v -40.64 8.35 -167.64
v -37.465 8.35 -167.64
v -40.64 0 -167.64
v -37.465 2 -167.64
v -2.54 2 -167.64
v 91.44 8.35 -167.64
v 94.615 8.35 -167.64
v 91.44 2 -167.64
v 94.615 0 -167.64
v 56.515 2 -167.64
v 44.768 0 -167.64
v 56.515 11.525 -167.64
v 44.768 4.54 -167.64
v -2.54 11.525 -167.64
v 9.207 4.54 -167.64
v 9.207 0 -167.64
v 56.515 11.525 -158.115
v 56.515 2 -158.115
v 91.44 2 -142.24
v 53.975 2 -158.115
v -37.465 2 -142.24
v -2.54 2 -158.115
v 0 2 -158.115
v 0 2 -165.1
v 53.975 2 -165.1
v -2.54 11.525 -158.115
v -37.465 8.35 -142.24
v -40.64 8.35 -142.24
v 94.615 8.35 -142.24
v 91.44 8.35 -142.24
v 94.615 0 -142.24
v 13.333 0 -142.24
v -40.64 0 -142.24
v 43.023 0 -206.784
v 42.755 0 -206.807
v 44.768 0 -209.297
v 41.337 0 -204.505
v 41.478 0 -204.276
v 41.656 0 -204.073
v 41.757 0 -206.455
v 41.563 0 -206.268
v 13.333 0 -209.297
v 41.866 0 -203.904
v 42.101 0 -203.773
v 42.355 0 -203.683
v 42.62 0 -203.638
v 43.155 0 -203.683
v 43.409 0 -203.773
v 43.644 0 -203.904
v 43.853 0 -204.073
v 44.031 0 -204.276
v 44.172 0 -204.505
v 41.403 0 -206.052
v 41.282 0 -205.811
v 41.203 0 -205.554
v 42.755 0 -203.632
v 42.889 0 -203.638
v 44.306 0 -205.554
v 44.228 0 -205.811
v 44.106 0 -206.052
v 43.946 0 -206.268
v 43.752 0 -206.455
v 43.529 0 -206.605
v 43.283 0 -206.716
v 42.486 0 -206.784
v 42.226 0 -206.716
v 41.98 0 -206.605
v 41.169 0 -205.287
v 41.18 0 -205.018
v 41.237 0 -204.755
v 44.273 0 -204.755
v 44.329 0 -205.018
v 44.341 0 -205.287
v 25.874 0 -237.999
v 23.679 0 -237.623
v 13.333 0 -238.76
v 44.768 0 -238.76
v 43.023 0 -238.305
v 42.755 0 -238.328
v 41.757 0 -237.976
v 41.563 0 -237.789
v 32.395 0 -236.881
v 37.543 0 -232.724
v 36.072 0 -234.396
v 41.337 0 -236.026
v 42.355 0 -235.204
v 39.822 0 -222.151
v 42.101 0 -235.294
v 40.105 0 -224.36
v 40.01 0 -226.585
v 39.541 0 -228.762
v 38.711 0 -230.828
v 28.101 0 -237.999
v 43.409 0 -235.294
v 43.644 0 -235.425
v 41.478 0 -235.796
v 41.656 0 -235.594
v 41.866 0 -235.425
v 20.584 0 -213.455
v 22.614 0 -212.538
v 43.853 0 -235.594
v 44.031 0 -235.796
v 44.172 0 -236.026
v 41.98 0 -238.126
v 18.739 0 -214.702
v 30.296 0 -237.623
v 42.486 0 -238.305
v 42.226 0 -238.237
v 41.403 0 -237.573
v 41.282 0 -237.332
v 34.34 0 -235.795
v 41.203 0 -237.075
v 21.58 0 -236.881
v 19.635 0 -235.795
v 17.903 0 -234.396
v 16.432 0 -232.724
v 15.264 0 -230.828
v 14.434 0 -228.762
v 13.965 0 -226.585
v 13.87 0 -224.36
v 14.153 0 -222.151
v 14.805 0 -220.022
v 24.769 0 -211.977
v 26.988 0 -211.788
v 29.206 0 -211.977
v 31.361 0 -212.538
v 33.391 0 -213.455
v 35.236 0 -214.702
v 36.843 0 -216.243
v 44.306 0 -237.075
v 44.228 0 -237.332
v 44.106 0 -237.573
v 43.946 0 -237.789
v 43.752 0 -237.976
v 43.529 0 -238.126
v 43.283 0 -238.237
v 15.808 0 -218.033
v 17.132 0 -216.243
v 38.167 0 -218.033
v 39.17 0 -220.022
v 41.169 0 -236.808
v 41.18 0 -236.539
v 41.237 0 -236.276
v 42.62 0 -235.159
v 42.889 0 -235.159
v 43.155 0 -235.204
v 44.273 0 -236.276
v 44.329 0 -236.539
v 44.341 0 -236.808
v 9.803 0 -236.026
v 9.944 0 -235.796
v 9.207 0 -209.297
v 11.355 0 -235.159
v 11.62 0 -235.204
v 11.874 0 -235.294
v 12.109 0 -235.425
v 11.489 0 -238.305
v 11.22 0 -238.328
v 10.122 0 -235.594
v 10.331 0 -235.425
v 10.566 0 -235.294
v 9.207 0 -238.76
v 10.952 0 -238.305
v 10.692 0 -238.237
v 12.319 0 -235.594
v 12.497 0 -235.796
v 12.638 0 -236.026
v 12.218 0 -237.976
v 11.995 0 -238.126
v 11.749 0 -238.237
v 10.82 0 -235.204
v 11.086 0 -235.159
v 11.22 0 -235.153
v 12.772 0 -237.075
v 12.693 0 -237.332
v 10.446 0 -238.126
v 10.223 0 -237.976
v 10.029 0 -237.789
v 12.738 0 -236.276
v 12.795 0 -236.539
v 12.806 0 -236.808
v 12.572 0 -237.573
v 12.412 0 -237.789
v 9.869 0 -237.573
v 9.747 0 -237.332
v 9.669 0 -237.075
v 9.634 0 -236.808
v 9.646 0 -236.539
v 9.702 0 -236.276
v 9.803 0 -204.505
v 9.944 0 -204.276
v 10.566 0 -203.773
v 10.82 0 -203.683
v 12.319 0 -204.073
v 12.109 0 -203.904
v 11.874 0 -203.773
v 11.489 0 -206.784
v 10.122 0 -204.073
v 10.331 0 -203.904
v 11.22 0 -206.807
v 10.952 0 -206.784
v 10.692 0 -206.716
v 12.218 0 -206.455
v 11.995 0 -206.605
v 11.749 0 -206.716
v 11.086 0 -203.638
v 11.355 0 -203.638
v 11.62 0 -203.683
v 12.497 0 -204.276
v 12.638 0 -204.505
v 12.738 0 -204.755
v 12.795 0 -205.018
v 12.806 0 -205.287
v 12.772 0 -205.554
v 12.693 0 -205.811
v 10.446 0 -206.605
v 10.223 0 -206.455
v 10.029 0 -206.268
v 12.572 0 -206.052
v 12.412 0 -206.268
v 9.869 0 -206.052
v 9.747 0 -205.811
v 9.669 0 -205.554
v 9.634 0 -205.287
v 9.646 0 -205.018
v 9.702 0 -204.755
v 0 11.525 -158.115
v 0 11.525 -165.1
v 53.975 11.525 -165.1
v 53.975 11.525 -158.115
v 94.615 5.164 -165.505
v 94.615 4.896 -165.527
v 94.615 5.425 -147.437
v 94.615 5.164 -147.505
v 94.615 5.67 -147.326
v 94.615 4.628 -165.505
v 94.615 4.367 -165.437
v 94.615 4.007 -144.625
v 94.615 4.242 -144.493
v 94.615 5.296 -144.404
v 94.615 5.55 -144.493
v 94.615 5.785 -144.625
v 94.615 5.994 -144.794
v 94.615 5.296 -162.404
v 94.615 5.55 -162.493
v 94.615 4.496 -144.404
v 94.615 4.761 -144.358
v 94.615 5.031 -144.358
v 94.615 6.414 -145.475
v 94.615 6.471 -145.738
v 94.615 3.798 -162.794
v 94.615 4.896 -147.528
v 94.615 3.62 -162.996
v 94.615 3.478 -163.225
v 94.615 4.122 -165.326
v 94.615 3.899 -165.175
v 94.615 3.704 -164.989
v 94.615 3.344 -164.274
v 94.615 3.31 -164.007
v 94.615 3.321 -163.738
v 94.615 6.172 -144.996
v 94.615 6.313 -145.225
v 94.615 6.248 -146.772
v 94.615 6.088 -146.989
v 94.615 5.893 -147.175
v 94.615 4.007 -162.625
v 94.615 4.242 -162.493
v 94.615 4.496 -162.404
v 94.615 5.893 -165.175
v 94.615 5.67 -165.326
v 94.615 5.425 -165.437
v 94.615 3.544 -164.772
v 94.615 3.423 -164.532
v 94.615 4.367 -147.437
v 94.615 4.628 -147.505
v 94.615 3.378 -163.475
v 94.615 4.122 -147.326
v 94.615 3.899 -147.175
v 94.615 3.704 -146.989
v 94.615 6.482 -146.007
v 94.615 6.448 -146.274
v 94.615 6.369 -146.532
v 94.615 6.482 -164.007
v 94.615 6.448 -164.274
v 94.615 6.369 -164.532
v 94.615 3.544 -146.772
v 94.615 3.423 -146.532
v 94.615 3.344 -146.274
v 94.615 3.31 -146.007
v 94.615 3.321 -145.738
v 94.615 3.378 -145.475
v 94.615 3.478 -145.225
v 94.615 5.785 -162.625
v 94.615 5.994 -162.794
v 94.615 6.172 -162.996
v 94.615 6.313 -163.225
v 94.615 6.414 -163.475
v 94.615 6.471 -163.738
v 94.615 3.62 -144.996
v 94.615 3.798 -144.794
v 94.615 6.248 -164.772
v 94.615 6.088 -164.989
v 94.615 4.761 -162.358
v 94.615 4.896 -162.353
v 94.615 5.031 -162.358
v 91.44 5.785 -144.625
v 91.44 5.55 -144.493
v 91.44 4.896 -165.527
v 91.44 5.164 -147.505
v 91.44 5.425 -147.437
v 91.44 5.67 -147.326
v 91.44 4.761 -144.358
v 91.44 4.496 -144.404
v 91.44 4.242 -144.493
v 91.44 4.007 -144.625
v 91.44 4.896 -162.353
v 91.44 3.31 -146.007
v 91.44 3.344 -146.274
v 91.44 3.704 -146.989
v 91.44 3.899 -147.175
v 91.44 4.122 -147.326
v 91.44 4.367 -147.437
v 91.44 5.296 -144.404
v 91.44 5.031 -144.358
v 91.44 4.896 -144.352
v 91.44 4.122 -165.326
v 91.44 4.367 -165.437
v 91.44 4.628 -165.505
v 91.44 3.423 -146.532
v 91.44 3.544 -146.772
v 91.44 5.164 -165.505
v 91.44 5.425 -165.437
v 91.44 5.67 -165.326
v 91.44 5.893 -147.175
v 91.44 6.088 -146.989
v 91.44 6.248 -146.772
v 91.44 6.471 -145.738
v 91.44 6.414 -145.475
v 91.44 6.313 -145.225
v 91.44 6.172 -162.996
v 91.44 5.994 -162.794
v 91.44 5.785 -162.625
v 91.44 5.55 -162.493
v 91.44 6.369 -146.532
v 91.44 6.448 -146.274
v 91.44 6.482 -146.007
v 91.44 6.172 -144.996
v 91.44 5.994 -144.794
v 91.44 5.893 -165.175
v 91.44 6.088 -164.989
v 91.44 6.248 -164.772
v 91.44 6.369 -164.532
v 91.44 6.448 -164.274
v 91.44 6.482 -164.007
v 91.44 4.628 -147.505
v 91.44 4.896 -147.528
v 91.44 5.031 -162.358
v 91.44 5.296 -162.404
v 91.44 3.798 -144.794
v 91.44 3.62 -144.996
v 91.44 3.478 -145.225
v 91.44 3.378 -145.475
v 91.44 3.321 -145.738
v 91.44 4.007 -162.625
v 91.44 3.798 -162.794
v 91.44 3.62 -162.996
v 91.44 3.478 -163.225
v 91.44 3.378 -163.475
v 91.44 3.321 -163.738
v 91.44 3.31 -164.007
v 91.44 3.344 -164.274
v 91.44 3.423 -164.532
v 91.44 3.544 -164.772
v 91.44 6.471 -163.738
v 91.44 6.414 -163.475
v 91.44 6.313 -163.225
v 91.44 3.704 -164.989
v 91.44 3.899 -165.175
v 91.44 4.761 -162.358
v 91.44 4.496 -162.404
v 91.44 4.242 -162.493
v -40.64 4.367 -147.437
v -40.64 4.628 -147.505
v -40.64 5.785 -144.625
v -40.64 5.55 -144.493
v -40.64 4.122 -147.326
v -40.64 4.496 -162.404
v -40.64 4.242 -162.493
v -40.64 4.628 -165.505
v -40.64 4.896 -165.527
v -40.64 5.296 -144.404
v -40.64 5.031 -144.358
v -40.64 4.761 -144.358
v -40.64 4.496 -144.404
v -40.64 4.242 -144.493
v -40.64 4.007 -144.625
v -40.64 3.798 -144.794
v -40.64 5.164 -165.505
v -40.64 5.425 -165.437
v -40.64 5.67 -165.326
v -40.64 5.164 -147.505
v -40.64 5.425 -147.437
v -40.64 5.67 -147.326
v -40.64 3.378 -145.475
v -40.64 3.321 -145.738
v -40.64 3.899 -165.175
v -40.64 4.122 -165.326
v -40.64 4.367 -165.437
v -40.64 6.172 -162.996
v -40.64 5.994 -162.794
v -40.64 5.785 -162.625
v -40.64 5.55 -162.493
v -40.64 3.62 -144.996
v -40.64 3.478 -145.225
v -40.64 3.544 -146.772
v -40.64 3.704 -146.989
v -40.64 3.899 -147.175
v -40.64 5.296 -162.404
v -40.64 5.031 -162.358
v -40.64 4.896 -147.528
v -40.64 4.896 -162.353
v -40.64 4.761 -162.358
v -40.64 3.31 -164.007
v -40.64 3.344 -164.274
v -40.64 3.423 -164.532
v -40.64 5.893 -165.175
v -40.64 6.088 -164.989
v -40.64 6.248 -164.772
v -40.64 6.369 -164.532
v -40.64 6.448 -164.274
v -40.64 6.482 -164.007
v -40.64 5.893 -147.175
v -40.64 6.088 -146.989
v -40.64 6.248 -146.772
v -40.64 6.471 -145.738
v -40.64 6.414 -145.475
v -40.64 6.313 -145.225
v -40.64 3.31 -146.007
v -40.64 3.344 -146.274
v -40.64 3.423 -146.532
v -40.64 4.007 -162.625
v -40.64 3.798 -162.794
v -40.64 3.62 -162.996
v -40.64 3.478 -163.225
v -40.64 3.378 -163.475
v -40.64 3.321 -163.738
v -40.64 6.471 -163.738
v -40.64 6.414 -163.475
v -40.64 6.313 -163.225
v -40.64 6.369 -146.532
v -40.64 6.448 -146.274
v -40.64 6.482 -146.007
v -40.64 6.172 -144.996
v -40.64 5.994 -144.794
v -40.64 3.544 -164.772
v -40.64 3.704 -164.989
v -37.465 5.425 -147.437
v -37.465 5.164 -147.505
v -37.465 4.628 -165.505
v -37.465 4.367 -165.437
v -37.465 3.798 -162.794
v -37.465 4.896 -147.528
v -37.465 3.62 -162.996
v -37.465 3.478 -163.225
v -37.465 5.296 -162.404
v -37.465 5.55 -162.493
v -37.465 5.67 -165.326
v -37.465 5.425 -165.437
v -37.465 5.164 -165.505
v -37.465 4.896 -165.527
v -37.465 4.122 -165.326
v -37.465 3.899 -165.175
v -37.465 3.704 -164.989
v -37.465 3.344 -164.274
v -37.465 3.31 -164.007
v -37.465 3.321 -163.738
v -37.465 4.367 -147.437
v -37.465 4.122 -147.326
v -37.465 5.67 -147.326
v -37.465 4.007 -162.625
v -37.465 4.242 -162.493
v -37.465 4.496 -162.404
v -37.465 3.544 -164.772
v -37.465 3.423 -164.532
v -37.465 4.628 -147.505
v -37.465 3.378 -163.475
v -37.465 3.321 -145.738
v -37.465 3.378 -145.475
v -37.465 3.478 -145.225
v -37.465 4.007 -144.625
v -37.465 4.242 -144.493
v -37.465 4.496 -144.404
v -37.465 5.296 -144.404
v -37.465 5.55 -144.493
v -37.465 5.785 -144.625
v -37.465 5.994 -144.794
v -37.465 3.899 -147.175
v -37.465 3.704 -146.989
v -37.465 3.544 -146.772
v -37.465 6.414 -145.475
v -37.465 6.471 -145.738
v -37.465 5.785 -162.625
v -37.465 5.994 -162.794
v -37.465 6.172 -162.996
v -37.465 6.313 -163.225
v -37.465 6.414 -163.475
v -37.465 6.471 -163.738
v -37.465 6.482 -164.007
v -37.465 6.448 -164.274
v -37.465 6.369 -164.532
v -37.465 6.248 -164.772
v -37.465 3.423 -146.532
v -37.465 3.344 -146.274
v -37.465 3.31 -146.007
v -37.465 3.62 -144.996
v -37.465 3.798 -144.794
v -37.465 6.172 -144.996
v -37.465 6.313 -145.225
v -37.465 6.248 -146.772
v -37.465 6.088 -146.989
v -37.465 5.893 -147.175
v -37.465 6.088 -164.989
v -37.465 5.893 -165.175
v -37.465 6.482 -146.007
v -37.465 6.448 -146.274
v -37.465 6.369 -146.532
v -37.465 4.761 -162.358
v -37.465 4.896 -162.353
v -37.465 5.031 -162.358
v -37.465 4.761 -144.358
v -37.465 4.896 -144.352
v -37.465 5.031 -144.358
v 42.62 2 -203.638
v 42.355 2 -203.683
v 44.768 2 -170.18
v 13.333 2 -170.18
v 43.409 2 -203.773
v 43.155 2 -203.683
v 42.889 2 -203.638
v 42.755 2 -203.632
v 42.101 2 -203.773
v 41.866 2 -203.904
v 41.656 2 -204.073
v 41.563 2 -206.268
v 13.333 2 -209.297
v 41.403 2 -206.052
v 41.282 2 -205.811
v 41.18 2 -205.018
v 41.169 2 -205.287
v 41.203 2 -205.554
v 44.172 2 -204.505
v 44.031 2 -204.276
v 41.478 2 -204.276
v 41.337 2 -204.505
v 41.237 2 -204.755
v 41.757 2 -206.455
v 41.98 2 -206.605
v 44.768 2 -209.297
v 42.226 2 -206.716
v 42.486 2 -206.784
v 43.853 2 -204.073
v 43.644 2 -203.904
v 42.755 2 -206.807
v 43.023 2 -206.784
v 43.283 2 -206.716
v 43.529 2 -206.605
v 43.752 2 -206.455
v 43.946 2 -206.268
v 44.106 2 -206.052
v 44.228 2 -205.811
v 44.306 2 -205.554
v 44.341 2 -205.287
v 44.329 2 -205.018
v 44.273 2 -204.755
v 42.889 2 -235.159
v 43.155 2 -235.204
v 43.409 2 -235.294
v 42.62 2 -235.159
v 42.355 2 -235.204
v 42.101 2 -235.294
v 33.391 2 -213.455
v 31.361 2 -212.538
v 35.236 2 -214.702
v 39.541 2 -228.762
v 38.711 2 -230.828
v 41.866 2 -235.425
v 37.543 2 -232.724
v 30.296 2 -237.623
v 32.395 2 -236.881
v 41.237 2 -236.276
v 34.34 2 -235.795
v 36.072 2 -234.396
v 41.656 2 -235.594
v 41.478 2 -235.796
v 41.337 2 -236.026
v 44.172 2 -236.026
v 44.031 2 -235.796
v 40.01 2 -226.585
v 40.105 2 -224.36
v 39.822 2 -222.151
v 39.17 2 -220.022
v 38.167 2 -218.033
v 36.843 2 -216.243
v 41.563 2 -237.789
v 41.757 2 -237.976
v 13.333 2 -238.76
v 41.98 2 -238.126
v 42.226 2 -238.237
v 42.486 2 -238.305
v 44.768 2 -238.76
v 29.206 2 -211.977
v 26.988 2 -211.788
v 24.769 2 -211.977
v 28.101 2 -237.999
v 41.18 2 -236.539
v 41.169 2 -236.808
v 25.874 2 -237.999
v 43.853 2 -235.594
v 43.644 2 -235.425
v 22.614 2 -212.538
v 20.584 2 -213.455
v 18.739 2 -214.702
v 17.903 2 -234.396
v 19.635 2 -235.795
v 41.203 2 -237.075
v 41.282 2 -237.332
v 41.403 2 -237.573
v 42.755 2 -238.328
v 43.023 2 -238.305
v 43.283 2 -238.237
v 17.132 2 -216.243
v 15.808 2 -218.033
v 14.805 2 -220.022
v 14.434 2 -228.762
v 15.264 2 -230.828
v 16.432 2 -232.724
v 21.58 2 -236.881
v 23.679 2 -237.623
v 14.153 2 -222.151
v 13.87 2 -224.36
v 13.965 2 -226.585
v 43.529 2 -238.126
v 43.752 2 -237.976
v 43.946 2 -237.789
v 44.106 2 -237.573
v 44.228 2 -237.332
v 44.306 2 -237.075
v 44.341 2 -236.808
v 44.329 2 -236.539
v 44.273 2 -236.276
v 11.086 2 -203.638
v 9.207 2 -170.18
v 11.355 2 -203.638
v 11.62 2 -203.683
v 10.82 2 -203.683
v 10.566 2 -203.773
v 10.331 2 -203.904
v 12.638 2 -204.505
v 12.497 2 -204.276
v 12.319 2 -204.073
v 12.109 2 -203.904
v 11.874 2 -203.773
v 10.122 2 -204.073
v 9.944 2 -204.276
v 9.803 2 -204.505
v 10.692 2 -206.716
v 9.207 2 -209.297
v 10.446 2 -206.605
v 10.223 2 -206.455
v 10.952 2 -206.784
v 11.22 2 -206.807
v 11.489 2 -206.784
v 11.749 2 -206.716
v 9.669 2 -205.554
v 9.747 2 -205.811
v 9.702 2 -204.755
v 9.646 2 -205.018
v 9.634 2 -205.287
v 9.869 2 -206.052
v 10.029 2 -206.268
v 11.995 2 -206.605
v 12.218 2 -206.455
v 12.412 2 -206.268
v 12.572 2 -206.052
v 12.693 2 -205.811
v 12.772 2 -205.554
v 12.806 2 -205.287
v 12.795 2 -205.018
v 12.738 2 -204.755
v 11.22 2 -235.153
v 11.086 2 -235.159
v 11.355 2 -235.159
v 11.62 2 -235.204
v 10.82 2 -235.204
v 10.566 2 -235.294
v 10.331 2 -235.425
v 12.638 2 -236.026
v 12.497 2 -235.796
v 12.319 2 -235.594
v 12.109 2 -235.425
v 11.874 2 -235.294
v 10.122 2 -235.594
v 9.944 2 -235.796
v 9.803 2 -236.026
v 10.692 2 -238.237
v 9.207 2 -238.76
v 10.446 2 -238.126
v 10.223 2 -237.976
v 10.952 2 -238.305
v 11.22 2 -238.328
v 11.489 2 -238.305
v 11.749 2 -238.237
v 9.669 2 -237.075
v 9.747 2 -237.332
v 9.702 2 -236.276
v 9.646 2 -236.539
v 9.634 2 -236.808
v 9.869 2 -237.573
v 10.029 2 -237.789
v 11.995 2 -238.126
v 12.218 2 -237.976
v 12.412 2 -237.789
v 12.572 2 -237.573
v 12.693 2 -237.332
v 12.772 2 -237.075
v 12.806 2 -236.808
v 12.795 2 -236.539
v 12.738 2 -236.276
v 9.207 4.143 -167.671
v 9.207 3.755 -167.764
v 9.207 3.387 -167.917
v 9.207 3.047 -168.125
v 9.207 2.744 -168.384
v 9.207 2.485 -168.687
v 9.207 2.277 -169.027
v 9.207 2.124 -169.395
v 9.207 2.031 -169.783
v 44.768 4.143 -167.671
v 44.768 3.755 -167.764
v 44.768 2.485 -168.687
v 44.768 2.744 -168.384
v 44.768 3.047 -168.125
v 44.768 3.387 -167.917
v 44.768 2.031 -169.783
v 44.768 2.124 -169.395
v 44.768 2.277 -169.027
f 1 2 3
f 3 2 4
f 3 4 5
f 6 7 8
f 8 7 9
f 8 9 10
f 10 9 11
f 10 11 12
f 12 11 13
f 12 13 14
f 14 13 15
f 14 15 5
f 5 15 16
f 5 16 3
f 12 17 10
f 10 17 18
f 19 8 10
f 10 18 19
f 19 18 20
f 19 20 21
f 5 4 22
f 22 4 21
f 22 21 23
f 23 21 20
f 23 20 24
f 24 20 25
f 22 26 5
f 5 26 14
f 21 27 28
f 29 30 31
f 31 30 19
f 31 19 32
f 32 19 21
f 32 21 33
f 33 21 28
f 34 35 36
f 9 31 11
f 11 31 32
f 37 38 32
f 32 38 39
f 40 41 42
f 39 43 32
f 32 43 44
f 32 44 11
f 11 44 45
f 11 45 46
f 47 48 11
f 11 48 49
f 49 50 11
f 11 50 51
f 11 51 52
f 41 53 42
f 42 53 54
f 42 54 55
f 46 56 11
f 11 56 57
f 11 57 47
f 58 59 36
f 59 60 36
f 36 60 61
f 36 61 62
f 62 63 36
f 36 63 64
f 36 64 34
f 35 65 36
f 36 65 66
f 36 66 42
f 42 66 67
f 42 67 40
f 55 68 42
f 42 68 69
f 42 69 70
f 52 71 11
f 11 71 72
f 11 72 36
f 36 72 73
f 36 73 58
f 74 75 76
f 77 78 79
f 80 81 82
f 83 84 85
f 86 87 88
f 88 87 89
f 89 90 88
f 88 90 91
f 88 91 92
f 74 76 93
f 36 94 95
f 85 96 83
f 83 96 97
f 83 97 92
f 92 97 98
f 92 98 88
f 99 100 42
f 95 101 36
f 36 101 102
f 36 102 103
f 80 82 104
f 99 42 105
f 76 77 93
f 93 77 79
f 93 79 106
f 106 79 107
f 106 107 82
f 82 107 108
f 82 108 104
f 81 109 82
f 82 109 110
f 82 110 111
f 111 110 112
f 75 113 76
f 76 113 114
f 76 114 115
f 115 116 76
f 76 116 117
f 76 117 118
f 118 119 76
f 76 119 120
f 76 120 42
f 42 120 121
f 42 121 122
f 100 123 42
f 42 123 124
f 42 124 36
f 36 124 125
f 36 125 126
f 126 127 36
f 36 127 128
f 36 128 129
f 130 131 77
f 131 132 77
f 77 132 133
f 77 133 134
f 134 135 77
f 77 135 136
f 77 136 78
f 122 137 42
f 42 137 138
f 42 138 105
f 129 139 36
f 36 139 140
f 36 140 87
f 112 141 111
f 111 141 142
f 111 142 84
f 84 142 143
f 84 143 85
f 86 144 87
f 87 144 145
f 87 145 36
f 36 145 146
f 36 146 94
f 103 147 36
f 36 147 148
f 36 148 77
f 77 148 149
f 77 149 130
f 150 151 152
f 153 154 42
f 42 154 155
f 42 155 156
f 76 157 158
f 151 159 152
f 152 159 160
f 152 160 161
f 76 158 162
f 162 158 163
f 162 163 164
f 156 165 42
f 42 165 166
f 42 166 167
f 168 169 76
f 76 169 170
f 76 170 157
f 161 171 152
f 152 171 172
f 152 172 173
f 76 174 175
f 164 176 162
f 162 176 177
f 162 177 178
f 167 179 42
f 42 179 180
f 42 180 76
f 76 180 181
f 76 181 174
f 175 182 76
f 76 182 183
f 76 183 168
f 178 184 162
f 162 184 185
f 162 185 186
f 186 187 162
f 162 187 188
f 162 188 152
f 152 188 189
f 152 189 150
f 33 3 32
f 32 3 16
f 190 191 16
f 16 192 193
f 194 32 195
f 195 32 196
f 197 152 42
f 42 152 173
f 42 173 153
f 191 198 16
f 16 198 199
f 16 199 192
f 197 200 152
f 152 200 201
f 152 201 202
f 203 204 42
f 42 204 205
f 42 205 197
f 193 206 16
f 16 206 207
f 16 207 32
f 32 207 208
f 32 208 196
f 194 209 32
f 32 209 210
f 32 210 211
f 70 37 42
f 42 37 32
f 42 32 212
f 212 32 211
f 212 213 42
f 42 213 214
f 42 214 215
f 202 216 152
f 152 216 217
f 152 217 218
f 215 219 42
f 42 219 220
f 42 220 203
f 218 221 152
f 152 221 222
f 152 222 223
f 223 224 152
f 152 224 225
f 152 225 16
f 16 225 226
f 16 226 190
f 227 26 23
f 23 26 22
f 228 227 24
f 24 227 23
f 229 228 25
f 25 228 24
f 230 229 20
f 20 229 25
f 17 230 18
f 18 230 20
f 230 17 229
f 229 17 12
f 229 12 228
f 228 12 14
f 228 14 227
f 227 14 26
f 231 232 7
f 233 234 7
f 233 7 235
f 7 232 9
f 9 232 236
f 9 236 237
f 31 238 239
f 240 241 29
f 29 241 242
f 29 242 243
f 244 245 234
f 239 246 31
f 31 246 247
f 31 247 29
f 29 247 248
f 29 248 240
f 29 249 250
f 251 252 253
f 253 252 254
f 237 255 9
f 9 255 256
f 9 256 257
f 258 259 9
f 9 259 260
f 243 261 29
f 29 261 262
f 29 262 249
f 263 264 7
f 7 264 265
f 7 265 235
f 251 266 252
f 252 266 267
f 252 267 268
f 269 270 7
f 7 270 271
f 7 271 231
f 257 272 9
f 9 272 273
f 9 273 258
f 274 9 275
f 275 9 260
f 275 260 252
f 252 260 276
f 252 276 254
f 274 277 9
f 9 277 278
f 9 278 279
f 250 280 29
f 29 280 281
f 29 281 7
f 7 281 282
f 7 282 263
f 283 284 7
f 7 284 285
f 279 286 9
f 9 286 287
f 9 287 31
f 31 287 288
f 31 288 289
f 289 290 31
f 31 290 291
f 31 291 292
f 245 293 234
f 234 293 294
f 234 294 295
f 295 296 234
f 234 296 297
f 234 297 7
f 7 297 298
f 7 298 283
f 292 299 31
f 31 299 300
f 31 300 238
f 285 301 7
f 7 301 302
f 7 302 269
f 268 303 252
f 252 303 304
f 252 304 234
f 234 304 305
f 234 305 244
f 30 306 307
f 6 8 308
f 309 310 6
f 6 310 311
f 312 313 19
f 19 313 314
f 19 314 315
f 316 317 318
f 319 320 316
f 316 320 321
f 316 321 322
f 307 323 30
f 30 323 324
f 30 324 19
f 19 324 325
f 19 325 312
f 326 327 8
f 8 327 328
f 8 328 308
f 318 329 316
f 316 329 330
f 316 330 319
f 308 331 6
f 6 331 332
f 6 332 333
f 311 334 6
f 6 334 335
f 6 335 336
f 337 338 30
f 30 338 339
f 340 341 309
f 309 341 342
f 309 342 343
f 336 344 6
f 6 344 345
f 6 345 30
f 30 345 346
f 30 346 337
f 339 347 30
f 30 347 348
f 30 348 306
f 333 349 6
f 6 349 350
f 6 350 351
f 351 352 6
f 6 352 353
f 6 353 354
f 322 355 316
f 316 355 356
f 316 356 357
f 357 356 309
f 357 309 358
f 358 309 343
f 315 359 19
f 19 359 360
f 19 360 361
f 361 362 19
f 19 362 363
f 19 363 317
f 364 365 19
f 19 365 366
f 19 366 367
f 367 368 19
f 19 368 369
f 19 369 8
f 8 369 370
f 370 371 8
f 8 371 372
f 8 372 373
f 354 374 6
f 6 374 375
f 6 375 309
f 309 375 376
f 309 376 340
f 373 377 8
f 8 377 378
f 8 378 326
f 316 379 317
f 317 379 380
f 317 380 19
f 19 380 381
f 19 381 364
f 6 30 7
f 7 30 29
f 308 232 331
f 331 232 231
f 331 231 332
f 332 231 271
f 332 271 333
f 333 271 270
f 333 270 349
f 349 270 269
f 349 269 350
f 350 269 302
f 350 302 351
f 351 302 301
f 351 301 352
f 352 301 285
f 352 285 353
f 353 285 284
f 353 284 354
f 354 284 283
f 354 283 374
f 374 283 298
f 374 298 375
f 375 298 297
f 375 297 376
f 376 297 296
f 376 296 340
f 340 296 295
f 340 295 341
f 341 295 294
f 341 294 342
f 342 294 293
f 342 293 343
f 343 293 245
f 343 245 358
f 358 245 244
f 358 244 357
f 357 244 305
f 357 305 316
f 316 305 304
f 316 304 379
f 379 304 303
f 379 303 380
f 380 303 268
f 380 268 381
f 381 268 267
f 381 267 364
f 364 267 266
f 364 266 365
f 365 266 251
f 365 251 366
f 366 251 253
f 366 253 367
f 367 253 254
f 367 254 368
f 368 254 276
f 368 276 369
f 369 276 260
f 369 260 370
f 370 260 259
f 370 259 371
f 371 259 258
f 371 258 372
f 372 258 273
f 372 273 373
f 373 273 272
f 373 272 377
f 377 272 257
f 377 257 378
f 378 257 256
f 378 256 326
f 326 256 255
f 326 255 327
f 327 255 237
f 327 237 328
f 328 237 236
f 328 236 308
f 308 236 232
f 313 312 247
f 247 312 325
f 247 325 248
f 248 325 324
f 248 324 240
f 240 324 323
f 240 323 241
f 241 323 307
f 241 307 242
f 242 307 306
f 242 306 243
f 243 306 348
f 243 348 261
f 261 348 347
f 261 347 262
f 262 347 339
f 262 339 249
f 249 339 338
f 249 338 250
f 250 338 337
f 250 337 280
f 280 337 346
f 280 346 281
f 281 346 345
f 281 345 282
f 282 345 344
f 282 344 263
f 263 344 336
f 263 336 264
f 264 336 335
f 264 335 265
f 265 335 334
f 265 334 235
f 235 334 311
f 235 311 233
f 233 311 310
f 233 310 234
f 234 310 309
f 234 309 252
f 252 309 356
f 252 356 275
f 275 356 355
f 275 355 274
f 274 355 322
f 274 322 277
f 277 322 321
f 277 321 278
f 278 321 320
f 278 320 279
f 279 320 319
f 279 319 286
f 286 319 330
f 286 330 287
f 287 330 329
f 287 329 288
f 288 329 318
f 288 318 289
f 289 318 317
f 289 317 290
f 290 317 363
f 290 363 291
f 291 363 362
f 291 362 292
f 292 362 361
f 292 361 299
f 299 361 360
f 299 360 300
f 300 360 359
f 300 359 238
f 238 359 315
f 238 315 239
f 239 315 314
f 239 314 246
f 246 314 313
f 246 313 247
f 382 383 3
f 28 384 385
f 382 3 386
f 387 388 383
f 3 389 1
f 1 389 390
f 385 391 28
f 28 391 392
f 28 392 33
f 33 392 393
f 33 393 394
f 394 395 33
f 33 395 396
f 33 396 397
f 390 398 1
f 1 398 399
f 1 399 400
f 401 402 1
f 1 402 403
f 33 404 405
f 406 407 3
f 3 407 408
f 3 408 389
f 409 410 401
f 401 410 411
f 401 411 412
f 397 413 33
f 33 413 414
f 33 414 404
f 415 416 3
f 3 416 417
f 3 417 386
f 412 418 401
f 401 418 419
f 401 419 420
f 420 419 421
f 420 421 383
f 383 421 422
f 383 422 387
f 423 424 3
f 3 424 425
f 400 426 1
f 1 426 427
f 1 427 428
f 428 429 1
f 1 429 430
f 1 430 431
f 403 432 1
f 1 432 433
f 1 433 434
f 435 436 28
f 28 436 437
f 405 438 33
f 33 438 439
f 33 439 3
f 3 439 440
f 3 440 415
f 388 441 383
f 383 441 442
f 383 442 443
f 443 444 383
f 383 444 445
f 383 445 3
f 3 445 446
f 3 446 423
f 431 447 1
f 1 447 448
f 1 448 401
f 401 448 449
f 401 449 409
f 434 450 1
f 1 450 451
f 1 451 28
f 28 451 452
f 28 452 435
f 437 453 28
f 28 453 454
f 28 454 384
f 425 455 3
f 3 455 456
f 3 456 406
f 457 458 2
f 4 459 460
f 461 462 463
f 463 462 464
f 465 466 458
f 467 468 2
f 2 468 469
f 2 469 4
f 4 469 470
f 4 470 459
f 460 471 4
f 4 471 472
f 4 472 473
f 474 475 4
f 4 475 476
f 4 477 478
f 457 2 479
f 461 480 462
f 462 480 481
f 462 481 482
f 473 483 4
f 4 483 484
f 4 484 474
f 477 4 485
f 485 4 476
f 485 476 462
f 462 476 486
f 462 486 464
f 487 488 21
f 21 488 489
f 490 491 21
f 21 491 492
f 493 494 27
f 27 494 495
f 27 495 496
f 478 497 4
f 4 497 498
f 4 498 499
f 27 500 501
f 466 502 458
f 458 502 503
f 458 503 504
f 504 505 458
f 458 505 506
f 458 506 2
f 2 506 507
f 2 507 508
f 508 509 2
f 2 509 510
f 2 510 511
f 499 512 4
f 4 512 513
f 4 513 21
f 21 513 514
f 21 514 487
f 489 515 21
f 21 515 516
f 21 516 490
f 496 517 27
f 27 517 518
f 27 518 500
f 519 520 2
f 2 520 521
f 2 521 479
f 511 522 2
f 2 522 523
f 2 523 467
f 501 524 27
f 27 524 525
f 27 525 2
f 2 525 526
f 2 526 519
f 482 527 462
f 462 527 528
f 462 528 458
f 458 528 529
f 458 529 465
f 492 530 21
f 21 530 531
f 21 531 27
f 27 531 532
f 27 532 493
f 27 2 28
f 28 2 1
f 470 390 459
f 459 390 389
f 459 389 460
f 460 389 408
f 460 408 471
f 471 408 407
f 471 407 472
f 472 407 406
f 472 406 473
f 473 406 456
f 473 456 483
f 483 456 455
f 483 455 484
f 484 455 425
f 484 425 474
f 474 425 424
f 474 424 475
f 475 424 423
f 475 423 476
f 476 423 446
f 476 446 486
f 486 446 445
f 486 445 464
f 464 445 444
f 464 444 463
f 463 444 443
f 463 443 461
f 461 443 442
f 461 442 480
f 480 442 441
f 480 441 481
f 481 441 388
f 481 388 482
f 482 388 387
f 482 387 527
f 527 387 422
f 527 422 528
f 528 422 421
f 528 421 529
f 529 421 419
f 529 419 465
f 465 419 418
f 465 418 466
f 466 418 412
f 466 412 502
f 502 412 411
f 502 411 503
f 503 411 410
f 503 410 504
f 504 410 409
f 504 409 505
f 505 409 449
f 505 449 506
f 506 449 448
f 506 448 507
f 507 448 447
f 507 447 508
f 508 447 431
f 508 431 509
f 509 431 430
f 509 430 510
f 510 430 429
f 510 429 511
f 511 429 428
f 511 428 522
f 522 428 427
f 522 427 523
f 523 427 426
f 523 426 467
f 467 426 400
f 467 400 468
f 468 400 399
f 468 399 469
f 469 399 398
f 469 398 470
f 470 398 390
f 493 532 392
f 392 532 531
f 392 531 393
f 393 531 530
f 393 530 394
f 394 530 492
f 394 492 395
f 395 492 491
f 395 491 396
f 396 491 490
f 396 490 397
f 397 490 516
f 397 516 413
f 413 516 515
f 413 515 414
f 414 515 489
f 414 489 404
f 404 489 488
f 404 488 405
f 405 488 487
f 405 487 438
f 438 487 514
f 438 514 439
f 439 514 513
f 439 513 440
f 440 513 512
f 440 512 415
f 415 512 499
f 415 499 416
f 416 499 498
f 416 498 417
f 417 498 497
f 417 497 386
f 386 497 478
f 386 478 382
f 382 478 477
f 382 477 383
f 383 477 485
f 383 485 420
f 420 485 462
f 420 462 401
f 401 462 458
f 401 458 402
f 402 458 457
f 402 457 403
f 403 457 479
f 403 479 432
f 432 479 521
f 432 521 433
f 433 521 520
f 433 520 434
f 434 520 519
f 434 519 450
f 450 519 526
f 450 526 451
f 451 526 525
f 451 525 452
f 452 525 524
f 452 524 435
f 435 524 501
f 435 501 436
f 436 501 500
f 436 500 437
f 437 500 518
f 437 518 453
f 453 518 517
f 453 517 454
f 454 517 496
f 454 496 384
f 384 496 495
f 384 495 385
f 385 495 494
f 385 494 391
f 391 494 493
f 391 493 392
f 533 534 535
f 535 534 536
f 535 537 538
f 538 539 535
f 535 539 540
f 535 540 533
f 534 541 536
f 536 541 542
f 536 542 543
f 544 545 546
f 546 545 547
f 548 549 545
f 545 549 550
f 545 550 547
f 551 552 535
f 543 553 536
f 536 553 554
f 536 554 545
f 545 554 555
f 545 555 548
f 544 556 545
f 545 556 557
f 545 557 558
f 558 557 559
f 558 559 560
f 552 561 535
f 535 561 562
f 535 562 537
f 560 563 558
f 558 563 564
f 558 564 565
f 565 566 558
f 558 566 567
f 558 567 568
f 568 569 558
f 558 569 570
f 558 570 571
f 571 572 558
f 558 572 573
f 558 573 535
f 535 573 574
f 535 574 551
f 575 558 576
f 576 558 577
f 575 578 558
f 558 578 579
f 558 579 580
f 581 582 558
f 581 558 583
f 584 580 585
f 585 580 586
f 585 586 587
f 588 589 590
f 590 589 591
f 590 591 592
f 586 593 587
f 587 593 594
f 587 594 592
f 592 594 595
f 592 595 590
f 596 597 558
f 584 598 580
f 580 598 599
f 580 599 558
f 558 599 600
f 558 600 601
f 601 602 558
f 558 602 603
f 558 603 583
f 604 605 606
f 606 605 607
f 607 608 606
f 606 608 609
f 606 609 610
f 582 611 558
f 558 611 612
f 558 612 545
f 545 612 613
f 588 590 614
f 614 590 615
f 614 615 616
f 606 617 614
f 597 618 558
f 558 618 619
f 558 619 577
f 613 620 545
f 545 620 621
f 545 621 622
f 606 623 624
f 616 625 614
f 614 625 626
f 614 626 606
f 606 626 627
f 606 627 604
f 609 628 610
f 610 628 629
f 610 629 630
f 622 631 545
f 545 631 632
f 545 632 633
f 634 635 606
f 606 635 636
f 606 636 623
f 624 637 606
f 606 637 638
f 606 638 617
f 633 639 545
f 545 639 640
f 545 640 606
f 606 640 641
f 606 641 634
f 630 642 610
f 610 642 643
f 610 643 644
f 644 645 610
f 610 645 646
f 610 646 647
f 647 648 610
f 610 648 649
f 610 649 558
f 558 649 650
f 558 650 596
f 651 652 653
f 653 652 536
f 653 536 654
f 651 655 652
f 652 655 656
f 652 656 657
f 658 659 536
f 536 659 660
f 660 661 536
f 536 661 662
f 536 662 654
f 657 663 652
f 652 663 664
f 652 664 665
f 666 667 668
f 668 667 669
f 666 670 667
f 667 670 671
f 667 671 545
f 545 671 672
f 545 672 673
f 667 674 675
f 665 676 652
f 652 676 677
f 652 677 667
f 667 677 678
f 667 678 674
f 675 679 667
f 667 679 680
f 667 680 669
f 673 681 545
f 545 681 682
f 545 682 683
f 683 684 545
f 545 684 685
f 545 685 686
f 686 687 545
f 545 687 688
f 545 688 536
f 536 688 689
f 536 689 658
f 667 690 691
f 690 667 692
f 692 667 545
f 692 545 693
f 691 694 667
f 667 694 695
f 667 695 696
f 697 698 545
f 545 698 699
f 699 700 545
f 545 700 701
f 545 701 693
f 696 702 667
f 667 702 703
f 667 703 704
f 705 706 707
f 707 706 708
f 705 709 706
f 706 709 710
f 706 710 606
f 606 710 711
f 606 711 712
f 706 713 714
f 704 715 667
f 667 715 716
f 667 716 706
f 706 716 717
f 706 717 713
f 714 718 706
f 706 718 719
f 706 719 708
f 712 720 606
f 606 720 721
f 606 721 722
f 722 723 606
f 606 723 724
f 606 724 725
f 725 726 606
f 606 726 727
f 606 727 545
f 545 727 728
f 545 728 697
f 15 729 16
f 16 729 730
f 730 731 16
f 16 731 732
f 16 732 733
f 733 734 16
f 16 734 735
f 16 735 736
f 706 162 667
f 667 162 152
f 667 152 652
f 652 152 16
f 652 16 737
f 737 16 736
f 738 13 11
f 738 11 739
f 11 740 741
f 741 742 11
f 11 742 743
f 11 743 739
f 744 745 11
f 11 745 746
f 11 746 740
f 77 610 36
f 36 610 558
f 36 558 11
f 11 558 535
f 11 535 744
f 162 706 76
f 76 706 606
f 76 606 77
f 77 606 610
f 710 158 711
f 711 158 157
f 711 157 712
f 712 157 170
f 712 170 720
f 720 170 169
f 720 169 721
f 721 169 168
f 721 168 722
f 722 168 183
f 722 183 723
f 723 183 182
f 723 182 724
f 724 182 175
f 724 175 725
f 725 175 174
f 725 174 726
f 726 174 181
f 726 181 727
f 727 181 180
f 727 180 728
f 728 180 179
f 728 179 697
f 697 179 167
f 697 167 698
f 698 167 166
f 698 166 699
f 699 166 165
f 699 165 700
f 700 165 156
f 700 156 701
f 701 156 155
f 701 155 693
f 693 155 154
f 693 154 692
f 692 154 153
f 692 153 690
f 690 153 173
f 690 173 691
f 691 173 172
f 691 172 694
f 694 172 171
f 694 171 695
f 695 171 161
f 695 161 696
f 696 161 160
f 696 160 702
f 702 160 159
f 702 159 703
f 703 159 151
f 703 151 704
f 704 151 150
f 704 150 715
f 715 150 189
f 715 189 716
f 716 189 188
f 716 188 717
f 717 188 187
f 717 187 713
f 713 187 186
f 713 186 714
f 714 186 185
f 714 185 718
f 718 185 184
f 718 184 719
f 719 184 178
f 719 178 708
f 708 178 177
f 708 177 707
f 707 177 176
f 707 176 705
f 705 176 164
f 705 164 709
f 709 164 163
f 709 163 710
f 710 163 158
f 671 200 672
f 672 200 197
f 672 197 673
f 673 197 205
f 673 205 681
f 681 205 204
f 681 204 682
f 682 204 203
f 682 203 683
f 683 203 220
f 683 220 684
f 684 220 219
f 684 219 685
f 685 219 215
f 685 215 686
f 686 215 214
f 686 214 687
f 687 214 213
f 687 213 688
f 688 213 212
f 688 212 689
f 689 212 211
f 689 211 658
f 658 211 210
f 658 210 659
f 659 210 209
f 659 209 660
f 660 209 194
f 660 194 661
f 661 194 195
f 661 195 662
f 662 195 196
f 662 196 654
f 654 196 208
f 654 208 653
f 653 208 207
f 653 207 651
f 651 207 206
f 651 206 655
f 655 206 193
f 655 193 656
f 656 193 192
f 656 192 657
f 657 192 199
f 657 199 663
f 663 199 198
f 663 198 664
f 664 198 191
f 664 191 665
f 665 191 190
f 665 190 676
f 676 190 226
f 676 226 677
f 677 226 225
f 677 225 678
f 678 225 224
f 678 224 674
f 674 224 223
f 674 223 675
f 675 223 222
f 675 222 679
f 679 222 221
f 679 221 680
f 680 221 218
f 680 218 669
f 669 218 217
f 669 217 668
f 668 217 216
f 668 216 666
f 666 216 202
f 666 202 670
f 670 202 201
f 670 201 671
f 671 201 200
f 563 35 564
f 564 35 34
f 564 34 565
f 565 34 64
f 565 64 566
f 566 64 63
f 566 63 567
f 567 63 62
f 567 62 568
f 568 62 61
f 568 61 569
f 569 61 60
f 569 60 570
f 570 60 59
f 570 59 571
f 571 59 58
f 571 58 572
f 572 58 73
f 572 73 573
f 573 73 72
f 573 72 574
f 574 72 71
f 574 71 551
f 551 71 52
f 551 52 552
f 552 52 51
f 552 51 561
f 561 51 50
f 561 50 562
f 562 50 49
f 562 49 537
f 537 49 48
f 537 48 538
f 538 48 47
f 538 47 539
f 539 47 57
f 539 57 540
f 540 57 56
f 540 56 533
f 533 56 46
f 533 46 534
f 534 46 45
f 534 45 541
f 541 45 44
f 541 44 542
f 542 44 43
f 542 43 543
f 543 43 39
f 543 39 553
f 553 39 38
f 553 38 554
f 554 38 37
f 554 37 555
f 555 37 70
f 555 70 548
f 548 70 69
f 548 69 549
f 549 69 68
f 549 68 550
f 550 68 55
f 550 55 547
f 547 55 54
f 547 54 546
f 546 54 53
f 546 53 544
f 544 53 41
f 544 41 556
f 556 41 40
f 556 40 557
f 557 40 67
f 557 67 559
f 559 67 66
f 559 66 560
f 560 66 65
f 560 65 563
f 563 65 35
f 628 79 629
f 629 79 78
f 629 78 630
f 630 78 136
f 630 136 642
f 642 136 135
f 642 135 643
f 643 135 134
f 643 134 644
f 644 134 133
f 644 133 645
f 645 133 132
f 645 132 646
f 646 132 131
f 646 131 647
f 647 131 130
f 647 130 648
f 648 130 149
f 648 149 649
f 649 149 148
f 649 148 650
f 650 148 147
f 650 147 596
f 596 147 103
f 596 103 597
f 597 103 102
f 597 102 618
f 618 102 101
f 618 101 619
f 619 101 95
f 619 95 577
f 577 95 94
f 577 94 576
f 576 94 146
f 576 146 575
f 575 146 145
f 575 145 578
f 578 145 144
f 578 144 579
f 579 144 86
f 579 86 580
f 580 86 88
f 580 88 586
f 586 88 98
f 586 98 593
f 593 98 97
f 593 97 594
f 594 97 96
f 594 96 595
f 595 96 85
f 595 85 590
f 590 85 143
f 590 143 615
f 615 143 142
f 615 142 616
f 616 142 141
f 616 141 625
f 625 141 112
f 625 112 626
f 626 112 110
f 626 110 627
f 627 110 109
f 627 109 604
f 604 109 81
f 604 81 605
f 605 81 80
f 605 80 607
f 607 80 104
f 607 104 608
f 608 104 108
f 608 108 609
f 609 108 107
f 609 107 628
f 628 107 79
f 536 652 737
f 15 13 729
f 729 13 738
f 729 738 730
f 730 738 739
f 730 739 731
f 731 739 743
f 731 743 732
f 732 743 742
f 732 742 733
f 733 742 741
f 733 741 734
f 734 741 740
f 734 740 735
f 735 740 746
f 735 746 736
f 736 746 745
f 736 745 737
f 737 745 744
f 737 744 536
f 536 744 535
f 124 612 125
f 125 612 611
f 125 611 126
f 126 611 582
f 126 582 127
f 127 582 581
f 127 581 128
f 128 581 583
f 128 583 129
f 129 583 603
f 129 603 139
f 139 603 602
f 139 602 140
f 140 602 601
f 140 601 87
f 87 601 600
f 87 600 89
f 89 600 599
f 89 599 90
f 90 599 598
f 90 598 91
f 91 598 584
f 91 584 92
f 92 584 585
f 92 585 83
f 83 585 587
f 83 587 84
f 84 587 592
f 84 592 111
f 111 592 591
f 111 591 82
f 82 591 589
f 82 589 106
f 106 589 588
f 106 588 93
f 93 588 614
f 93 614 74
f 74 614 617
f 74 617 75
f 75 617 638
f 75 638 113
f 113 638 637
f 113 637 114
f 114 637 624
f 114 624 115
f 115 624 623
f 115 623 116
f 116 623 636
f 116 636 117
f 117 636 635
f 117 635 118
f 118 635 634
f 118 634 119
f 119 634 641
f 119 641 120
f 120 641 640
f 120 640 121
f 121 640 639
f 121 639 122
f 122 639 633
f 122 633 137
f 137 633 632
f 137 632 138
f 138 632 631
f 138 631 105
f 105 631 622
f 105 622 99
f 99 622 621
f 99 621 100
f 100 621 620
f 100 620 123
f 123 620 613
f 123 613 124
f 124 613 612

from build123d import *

# Parameters (mm, degrees)
SKETCH2_W           = 59.055
SKETCH2_H           = 25.4
BOSS_EXTRUDE1_DEPTH = 2
BOSS_EXTRUDE2_START = 2
BOSS_EXTRUDE2_DEPTH = 9.525
SKETCH3_W           = 38.1
SKETCH3_H           = 25.4
BOSS_EXTRUDE3_DEPTH = 2
BOSS_EXTRUDE4_START = 2
SKETCH4_W           = 3.175
SKETCH4_H           = 25.4
BOSS_EXTRUDE4_DEPTH = 6.35
SKETCH5_R           = 1.5875
CUT_EXTRUDE1_DEPTH  = 3.175
SKETCH6_W           = 35.56
SKETCH6_H           = 71.12
SKETCH6_R           = 1.5875
BOSS_EXTRUDE5_DEPTH = 2
FILLET1_R           = 2.54
SKETCH10_R          = 13.129221829
CUT_EXTRUDE2_DEPTH  = 2


with BuildPart() as part:
    # Sketch2 → Boss-Extrude1 (new body)
    with BuildSketch(Plane(origin=(0, 0, 0), x_dir=(1, 0, 0), z_dir=(0, 1, 0))):
        with Locations((26.9875, 154.94)):
            Rectangle(SKETCH2_W, SKETCH2_H)
    extrude(amount=BOSS_EXTRUDE1_DEPTH)

    # Sketch1 → Boss-Extrude2 (add)
    with BuildSketch(Plane(origin=(0, 0, 0), x_dir=(1, 0, 0), z_dir=(0, 1, 0)).offset(BOSS_EXTRUDE2_START)):
        Polygon((-2.54, 167.64), (-2.54, 158.115), (0, 158.115), (0, 165.1), (53.975, 165.1), (53.975, 158.115), (56.515, 158.115), (56.515, 167.64), align=None)
    extrude(amount=BOSS_EXTRUDE2_DEPTH)

    # Sketch3 → Boss-Extrude3 (add)
    with BuildSketch(Plane(origin=(0, 0, 0), x_dir=(1, 0, 0), z_dir=(0, 1, 0))):
        with Locations((75.565, 154.94)):
            Rectangle(SKETCH3_W, SKETCH3_H)
    extrude(amount=BOSS_EXTRUDE3_DEPTH)

    # Sketch4 → Boss-Extrude4 (add)
    with BuildSketch(Plane(origin=(0, 0, 0), x_dir=(1, 0, 0), z_dir=(0, 1, 0)).offset(BOSS_EXTRUDE4_START)):
        with Locations((93.0275, 154.94)):
            Rectangle(SKETCH4_W, SKETCH4_H)
    extrude(amount=BOSS_EXTRUDE4_DEPTH)

    # Sketch5 → Cut-Extrude1 (cut)
    with BuildSketch(Plane(origin=(94.615, 0, 0), x_dir=(0, 0, -1), z_dir=(1, 0, 0))):
        with Locations((145.94, 4.895971622)):
            Circle(SKETCH5_R)
        with Locations(Location((163.94, 4.895971622, 0), (0, 0, 180))):
            Circle(SKETCH5_R)
    extrude(amount=-CUT_EXTRUDE1_DEPTH, mode=Mode.SUBTRACT)

    # Mirror1: part across plane


with BuildPart() as part_1:
    add(part.part)
    add(part.part.mirror(Plane(origin=(26.9875, 0, 0), x_dir=(0, 0, 1), z_dir=(1, 0, 0))))

    # Sketch6 → Boss-Extrude5 (add)
    with BuildSketch(Plane(origin=(0, 0, 0), x_dir=(1, 0, 0), z_dir=(0, 1, 0))):
        with Locations((26.9875, 203.2)):
            Rectangle(SKETCH6_W, SKETCH6_H)
        with Locations(Location((11.09051688, 236.783908574, 0), (0, 0, 270))):
            Circle(SKETCH6_R, mode=Mode.SUBTRACT)
        with Locations(Location((11.09051688, 205.176091426, 0), (0, 0, 90))):
            Circle(SKETCH6_R, mode=Mode.SUBTRACT)
        with Locations(Location((42.88448312, 205.176091426, 0), (0, 0, 270))):
            Circle(SKETCH6_R, mode=Mode.SUBTRACT)
        with Locations(Location((42.88448312, 236.783908574, 0), (0, 0, 90))):
            Circle(SKETCH6_R, mode=Mode.SUBTRACT)
    extrude(amount=BOSS_EXTRUDE5_DEPTH)

    # Fillet1
    fillet1_edges = [part_1.edges().sort_by_distance(p)[0] for p in [
        (26.9875, 2, -167.64),
    ]]
    fillet(fillet1_edges, radius=FILLET1_R)

    # Sketch10 → Cut-Extrude2 (cut)
    with BuildSketch(Plane(origin=(0, 2, 0), x_dir=(1, 0, 0), z_dir=(0, 1, 0))):
        with Locations(Location((26.9875, 224.917, 0), (0, 0, 270))):
            Circle(SKETCH10_R)
    extrude(amount=-CUT_EXTRUDE2_DEPTH, mode=Mode.SUBTRACT)


solid = part_1.part
